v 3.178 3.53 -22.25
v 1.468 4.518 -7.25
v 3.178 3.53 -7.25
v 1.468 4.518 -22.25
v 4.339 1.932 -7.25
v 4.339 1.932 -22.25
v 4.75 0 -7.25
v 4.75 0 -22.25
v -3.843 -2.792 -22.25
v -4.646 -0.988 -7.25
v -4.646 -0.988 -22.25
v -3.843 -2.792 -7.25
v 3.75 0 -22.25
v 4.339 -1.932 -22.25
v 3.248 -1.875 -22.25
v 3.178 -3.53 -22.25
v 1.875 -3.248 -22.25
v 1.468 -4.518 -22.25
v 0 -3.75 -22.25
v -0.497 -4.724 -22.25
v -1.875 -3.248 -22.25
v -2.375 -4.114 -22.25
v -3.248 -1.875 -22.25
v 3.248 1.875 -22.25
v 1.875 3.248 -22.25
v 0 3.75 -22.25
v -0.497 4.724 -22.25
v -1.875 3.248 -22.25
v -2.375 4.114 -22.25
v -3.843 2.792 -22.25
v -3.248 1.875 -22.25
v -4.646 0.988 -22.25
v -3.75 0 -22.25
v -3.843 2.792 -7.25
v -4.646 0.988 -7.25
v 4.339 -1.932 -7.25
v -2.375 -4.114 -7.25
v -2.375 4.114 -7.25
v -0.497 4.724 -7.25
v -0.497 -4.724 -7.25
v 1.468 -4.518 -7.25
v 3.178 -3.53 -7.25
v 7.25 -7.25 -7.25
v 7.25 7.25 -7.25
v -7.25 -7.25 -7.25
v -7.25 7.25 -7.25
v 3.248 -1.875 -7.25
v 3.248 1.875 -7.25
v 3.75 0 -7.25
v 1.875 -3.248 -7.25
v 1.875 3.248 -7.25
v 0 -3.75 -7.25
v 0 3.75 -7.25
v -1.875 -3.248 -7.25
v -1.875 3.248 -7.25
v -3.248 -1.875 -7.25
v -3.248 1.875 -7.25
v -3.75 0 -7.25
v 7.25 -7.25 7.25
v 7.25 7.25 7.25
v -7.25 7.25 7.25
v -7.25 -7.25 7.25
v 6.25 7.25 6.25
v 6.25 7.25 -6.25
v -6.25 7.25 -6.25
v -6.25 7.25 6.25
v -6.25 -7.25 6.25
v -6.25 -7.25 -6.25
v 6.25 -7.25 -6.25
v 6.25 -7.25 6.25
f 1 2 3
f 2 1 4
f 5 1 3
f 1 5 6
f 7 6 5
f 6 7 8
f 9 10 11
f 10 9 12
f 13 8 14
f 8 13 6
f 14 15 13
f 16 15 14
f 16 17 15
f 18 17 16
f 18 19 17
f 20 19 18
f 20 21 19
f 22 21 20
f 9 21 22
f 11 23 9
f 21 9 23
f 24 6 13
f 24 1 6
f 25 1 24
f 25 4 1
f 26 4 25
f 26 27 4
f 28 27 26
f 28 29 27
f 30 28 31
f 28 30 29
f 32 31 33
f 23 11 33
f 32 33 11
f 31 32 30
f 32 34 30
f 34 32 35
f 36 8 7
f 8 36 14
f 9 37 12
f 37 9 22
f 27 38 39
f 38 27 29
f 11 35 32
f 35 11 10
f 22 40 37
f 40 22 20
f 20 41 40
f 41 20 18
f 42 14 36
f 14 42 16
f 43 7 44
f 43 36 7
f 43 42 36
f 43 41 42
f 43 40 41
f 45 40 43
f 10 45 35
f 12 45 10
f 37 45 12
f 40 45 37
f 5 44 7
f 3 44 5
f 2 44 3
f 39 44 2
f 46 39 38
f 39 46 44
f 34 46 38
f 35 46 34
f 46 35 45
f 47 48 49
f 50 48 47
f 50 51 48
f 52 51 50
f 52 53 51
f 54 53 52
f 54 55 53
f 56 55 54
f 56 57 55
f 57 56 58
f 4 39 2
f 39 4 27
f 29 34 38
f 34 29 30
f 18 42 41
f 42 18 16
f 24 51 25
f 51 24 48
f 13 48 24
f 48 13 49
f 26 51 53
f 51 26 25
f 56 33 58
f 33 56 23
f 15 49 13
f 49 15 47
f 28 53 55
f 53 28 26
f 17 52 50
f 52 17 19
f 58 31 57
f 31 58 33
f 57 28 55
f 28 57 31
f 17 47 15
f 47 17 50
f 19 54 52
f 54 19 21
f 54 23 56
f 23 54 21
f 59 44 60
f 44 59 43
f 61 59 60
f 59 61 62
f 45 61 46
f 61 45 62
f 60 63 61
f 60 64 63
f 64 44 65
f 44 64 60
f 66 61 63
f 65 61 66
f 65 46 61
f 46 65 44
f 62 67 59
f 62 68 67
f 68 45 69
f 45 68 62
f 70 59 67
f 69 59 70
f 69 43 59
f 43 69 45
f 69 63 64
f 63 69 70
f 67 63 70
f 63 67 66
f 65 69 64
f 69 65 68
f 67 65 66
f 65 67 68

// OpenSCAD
// file: ../../vars.scad
// style
carbonColor = "#3e4042";
plaColor = "#00ff00";


// arms
armLength = 500;
armBoxWidth = 12.5;
armBoxWallThickness = 0.5;
armFixingHoleDia = 4;

// central brackets
centralBracketWallThickness = 1;
centralBracketDepth = armBoxWidth / 2;

centralBracketTopPlateSize = 100;
centralBracketTopPlateThickness = 1;

centralBracketPlateSize = 50;
centralBracketPlateThickness = 1;

// landing gear
landingGearSpacing = 175;

landingGearLegLength = 75;
landingGearLegDia = 7.5;
landingGearLegWallThickness = 0.5;

landingGearFootThickness = 0.5;
landingGearFootDia = 30;
landingGearFootSocketHeight = 15;
landingGearFootSocketWallThickness = 0.5;

landingGearBracketWallThickness = 1;
landingGearBracketSocketWallThickness = 1;
landingGearBracketSocketHeight = 15;

// brain board
brainBoardSize = 150;
brainBoardThickness = 1;
brainBoardSpace = 20;
// main file
include<../../vars.scad>

module landingGearBracket() {
    translate([(-armBoxWidth / 2) - landingGearBracketWallThickness, (-armBoxWidth / 2) - landingGearBracketSocketWallThickness, (-armBoxWidth / 2) -landingGearBracketSocketWallThickness]) difference(){
        color(plaColor) cube(armBoxWidth + landingGearBracketWallThickness * 2);
        translate([landingGearBracketWallThickness, -landingGearBracketWallThickness + 0.5, landingGearBracketWallThickness]) cube([armBoxWidth, armBoxWidth + (landingGearBracketWallThickness * 2) + 1, armBoxWidth]);
    };
    translate([0, 0, ((-armBoxWidth / 2) - landingGearBracketWallThickness) - landingGearBracketSocketHeight]) difference(){
        color(plaColor)
        cylinder(h = landingGearBracketSocketHeight, d = (landingGearBracketSocketWallThickness * 2) + landingGearLegDia);

        translate([0, 0, -0.5])
        cylinder(h = landingGearBracketSocketHeight + 1, d = landingGearLegDia);
    };
};

landingGearBracket();
